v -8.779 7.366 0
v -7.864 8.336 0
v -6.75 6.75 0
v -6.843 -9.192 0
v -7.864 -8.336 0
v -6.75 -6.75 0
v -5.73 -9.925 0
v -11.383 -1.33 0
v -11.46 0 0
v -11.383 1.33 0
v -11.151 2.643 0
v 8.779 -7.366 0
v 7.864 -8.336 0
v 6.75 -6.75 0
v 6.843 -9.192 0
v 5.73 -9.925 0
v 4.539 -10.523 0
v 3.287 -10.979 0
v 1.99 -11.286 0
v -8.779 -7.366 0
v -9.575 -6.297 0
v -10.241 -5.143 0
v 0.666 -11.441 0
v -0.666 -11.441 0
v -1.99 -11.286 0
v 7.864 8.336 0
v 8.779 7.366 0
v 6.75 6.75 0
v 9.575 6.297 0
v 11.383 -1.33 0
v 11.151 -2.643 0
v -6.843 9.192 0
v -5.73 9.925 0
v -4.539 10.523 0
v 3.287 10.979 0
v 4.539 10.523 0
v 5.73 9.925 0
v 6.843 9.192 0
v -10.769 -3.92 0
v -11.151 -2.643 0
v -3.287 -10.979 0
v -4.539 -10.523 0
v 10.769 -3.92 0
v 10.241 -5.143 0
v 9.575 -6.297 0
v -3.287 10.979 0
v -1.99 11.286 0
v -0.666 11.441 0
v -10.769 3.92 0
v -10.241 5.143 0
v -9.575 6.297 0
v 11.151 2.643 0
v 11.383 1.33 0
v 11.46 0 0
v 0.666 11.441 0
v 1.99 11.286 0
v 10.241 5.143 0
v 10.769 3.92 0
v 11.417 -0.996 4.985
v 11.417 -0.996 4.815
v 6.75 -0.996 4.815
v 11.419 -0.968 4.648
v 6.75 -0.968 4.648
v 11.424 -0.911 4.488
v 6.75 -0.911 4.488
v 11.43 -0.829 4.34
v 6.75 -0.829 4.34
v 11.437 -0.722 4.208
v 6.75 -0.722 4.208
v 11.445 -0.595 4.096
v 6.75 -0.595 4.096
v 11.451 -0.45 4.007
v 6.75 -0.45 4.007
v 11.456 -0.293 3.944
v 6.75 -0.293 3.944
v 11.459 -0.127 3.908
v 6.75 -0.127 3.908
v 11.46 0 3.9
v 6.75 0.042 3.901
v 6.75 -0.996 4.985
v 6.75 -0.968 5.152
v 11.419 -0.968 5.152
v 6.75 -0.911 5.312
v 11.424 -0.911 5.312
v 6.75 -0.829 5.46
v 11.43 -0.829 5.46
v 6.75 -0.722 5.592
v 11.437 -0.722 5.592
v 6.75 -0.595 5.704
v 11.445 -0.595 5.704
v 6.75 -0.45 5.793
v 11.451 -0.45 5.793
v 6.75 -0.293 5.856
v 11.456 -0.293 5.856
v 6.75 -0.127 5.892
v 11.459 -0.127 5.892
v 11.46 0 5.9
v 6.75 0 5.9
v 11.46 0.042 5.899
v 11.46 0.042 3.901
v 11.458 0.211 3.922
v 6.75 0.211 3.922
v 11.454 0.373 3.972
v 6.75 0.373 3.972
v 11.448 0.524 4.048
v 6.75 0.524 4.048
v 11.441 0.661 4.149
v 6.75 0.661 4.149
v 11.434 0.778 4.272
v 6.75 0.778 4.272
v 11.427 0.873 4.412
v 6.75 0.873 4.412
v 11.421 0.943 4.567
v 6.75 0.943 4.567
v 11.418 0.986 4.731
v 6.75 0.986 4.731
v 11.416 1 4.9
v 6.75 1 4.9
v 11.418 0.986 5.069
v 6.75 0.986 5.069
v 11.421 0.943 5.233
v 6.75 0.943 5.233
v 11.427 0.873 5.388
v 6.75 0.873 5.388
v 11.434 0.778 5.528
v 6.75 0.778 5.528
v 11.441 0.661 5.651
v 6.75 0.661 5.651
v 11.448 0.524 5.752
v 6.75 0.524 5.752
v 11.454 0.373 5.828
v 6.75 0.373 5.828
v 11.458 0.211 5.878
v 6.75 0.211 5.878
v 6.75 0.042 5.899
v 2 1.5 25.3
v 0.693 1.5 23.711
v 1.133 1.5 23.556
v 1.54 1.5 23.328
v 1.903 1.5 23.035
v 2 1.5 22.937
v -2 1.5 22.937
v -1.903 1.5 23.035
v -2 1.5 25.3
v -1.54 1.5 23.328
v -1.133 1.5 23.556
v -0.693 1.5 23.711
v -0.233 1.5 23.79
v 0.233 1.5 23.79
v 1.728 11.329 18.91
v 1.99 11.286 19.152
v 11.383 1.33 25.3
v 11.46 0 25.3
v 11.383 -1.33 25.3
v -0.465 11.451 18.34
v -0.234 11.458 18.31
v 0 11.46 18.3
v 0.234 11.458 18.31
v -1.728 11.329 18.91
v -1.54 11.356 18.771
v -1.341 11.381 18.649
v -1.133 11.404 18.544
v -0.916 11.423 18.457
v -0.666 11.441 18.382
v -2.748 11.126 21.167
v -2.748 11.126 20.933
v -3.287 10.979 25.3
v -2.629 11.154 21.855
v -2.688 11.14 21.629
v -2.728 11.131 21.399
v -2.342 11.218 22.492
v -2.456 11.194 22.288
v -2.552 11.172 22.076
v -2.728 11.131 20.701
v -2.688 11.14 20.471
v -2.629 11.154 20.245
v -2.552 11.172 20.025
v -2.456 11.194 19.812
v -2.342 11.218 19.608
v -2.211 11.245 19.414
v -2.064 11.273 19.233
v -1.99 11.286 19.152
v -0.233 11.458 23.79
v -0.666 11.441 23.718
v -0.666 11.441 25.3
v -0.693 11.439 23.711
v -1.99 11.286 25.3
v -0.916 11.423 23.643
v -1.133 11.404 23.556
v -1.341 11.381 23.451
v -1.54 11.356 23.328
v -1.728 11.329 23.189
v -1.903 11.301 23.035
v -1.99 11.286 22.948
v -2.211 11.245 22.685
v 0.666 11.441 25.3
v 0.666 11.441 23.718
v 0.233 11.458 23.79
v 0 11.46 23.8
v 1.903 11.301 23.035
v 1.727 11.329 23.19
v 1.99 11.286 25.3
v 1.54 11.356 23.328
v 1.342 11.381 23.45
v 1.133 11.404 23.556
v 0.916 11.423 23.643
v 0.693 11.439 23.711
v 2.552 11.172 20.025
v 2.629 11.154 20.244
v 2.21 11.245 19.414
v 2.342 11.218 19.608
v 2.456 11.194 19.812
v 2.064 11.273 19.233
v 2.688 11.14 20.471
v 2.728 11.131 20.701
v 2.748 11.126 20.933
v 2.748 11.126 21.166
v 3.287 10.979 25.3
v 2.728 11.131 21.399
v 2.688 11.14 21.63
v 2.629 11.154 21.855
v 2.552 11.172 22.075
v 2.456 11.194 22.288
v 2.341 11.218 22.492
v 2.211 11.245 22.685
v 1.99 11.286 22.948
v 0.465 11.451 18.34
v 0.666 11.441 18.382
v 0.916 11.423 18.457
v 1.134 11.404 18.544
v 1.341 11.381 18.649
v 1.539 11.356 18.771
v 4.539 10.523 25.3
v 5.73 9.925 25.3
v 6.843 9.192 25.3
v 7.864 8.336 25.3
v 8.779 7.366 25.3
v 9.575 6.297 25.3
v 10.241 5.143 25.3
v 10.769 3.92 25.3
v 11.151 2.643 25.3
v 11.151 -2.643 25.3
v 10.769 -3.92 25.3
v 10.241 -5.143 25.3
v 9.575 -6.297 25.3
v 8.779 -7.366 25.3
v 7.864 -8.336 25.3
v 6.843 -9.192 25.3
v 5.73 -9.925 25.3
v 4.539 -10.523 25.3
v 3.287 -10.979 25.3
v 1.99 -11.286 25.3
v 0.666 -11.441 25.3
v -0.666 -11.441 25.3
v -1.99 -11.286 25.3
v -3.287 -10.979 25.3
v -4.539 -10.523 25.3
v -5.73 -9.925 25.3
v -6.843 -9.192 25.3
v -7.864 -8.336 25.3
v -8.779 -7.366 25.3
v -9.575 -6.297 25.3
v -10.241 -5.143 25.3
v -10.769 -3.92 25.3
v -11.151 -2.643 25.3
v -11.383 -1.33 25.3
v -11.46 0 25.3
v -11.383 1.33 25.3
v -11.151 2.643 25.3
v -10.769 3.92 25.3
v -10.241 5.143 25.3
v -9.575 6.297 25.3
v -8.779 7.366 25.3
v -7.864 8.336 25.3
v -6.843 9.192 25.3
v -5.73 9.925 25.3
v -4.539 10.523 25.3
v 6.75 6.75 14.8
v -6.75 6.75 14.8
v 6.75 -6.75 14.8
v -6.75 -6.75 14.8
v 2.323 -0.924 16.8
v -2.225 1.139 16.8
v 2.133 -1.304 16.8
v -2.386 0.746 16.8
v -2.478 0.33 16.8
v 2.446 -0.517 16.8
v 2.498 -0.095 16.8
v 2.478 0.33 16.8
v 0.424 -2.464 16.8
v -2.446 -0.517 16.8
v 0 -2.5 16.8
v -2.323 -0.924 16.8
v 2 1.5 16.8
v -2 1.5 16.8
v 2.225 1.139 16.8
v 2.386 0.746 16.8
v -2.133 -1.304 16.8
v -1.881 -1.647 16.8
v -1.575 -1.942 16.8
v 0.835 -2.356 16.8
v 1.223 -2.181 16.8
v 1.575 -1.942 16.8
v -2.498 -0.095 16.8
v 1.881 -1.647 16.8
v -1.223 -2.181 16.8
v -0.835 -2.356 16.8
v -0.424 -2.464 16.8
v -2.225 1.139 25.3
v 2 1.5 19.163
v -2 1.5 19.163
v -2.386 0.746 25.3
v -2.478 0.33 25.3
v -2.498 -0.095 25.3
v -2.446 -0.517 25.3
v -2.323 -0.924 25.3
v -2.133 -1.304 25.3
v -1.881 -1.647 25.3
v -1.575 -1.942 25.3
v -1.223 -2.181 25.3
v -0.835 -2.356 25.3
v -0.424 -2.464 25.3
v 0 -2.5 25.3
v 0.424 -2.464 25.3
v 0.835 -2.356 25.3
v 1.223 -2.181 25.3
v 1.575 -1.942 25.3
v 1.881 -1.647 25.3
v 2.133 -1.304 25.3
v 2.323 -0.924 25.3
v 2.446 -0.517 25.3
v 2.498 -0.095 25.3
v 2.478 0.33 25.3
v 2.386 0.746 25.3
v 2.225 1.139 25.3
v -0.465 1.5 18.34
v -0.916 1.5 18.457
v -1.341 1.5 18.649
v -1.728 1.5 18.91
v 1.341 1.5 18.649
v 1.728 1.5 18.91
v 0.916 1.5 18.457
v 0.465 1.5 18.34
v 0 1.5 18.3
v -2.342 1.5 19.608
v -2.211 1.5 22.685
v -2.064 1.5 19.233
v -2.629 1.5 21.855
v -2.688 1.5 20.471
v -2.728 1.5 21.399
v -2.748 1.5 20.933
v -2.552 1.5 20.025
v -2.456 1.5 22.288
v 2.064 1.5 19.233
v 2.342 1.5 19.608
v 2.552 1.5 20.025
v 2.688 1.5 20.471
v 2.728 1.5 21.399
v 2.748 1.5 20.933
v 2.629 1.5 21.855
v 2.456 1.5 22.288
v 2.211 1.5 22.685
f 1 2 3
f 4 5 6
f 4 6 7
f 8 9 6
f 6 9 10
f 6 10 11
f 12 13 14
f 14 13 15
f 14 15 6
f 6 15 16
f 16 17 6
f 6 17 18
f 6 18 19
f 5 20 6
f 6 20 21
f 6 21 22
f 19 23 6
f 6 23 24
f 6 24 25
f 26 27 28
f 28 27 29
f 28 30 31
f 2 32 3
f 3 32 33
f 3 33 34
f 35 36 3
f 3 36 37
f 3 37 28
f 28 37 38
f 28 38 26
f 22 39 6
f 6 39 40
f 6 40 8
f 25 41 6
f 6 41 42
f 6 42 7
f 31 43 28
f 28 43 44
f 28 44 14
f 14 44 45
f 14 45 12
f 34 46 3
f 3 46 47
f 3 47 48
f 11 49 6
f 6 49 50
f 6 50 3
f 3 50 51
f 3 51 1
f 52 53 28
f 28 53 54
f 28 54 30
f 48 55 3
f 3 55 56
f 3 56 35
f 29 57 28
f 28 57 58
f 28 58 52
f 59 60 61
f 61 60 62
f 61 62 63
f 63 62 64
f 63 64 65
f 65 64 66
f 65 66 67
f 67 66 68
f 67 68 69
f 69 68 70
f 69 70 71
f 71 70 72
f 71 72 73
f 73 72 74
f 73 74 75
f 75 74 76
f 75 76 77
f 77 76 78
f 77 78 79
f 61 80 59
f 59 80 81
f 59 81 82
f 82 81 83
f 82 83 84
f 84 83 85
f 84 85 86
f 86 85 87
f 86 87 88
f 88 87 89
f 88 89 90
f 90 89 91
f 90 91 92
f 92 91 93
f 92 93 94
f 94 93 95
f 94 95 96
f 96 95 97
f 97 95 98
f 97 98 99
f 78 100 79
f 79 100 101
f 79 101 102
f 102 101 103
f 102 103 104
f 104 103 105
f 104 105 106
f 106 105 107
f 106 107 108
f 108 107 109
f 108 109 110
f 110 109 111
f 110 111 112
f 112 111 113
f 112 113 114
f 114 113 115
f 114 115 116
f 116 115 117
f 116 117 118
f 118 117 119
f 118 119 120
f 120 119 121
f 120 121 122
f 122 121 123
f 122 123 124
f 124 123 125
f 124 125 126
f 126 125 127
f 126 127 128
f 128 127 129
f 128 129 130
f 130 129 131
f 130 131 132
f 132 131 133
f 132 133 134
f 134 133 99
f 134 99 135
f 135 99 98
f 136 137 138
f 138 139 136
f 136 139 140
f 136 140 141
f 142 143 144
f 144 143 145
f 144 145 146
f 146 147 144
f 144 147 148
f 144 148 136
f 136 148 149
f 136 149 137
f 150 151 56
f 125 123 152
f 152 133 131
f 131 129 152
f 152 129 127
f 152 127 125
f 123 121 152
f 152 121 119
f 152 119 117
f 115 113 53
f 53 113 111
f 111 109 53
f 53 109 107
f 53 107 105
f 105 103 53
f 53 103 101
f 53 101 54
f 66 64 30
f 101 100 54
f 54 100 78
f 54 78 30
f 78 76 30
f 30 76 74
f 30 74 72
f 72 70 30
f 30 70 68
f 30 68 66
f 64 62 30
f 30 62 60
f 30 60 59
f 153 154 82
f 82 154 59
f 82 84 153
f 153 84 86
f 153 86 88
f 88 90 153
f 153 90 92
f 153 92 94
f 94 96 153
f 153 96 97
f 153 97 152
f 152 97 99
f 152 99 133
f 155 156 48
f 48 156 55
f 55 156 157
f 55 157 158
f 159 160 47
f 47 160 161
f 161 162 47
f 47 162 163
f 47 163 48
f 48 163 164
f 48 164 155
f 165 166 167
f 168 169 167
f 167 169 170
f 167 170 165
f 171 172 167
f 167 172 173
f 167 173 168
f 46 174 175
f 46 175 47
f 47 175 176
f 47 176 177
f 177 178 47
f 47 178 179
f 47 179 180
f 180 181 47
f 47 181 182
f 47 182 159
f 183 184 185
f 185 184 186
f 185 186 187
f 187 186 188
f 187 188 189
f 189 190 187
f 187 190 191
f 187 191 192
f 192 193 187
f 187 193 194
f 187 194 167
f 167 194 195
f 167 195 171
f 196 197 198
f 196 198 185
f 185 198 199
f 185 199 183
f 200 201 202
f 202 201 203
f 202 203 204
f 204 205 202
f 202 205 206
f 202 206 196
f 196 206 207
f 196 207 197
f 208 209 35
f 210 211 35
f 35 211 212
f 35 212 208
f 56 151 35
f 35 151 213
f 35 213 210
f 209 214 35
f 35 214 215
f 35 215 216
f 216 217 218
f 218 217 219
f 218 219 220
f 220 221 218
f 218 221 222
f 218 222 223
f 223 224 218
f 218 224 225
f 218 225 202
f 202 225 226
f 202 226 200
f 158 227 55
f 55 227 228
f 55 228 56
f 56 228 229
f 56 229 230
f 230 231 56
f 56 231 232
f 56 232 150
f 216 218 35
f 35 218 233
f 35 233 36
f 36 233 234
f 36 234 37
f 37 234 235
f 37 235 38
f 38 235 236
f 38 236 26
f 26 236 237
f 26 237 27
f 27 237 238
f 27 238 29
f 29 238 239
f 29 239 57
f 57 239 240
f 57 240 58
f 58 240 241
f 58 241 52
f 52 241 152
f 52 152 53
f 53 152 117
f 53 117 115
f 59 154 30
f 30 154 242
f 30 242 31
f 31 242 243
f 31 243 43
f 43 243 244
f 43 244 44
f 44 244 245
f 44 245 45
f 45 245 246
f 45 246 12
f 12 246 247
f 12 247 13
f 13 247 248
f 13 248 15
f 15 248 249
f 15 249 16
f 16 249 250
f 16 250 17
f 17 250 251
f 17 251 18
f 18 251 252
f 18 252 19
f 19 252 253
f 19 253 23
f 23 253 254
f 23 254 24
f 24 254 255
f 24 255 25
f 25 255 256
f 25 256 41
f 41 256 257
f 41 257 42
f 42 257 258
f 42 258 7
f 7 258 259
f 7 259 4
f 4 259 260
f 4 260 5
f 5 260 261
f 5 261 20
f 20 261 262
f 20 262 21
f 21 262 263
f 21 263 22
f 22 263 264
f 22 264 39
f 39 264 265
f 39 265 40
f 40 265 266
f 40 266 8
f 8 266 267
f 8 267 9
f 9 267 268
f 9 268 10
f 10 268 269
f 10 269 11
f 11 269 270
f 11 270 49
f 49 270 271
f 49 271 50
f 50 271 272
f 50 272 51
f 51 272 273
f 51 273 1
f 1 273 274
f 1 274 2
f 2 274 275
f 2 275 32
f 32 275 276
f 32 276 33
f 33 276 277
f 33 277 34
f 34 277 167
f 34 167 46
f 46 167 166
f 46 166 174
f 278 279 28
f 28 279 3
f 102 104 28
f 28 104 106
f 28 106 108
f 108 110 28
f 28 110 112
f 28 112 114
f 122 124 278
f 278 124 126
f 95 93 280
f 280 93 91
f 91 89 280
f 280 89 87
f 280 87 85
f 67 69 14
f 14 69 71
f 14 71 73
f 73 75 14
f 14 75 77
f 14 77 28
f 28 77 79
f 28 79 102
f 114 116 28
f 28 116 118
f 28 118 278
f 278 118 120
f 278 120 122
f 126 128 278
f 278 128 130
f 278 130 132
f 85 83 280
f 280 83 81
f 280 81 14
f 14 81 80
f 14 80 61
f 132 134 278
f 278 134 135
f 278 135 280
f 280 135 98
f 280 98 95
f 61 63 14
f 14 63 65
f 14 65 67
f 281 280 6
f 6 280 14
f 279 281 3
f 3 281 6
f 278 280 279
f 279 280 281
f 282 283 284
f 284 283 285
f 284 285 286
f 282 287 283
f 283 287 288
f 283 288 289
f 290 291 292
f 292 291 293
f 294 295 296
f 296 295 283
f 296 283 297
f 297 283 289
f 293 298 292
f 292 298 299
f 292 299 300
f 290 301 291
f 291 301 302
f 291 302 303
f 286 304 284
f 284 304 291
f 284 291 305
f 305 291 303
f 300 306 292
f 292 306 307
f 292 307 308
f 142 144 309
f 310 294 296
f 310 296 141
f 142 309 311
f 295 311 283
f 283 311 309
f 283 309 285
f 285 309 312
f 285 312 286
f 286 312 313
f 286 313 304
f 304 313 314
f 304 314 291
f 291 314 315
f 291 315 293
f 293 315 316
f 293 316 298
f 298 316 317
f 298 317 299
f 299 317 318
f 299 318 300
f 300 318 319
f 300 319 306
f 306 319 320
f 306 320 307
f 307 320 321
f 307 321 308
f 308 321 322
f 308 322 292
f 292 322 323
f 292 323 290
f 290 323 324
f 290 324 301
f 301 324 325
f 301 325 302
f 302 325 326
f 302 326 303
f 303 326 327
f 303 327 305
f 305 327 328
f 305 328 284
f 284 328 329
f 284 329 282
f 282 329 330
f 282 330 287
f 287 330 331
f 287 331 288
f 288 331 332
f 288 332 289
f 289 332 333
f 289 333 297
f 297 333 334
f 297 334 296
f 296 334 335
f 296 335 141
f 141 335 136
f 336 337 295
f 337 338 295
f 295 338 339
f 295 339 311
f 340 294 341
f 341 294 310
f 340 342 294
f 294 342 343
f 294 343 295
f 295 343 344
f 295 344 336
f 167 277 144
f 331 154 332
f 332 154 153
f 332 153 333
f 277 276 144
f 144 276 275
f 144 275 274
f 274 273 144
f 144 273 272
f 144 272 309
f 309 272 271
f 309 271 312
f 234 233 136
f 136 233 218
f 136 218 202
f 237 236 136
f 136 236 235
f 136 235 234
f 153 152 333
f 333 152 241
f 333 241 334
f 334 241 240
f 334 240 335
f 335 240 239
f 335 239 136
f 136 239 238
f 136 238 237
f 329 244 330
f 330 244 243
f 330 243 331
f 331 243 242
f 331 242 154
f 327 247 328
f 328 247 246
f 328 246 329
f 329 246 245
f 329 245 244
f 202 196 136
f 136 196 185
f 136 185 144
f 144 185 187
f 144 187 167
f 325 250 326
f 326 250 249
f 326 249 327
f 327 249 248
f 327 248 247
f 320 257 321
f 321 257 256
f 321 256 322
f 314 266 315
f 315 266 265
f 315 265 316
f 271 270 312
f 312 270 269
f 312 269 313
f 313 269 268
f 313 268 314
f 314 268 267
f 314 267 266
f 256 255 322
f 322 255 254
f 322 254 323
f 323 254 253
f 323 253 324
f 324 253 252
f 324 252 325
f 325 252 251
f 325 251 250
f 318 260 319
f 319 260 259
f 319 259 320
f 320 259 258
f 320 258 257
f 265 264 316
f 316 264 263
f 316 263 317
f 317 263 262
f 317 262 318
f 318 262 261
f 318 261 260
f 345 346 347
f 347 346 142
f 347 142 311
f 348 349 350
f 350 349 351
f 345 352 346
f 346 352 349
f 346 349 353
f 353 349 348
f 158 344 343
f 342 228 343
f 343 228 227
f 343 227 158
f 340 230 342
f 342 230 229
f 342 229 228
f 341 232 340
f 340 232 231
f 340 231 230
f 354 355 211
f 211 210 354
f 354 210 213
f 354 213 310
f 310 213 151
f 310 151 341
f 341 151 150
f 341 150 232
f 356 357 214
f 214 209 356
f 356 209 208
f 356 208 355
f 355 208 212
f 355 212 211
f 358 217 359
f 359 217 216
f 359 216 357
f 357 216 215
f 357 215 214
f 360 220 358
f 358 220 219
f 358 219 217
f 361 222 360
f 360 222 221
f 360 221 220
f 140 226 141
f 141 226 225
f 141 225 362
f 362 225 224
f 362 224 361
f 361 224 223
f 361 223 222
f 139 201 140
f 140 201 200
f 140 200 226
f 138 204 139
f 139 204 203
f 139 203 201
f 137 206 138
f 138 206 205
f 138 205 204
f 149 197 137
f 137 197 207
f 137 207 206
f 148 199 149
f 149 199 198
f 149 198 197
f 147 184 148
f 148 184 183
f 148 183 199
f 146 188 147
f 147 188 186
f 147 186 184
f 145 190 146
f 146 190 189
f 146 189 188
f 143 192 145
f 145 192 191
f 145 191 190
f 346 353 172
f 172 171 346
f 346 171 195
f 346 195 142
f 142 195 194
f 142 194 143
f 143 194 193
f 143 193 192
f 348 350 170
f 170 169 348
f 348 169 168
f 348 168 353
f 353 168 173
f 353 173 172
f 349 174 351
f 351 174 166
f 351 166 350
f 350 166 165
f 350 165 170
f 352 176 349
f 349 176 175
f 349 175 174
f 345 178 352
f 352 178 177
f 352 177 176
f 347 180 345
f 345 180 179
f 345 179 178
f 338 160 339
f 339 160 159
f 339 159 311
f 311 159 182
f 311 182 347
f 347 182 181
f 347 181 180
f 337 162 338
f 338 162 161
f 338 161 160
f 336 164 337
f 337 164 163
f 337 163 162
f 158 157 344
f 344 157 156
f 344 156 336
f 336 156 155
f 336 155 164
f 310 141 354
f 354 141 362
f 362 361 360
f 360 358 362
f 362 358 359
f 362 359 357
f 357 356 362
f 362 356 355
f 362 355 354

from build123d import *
from build123d.topology import SkipClean

# Parameters (mm, degrees)
BOSS_EXTRUDE1_DEPTH = 9.8
SKETCH2_R           = 9.925
BOSS_EXTRUDE2_DEPTH = 7
SKETCH3_W           = 13.5
SKETCH3_H           = 13.5
CUT_EXTRUDE1_DEPTH  = 5
SKETCH4_R           = 5
BOSS_EXTRUDE3_DEPTH = 8.5
SKETCH5_R           = 1
CUT_EXTRUDE2_DEPTH  = 10.5
SKETCH7_W           = 3.5
SKETCH7_H           = 8.12
CUT_EXTRUDE4_DEPTH  = 10.5
SKETCH9_R           = 9.925
SKETCH9_R_2         = 5
BOSS_EXTRUDE4_DEPTH = 8.5
SKETCH14_R          = 11.46
SKETCH14_R_2        = 9.925
BOSS_EXTRUDE5_DEPTH = 15.5
SKETCH6_R           = 2.75
CUT_EXTRUDE3_DEPTH  = 13.5
CUT_EXTRUDE5_DEPTH  = 21


with BuildPart() as part:
    # Sketch1 → Boss-Extrude1 (new body)
    # profile 1 of 5: a face of its own
    with BuildSketch(Plane.XY):
        with BuildLine():
            Line((17.06, 4.06), (10.716715915, 4.06))
            ThreePointArc((10.716715915, 4.06), (-11.46, 0), (10.716715915, -4.06))
            Line((10.716715915, -4.06), (17.06, -4.06))
            Line((17.06, -4.06), (17.06, 4.06))
        make_face()
        with BuildLine():
            Line((-5.14952425, -6.75), (-6.75, -6.75))
            Line((-6.75, -6.75), (-6.75, -5.14952425))
            ThreePointArc((-6.75, -5.14952425), (-8.49, 0), (-6.75, 5.14952425))
            Line((-6.75, 5.14952425), (-6.75, 6.75))
            Line((-6.75, 6.75), (-5.14952425, 6.75))
            ThreePointArc((-5.14952425, 6.75), (0, 8.49), (5.14952425, 6.75))
            Line((5.14952425, 6.75), (6.75, 6.75))
            Line((6.75, 6.75), (6.75, 5.14952425))
            ThreePointArc((6.75, 5.14952425), (8.49, 0), (6.75, -5.14952425))
            Line((6.75, -5.14952425), (6.75, -6.75))
            Line((6.75, -6.75), (5.14952425, -6.75))
            ThreePointArc((5.14952425, -6.75), (0, -8.49), (-5.14952425, -6.75))
        make_face(mode=Mode.SUBTRACT)
    # profile 2 of 5: a face of its own
    with BuildSketch(Plane.XY):
        with BuildLine():
            ThreePointArc((5.14952425, 6.75), (0, 8.49), (-5.14952425, 6.75))
            Line((-5.14952425, 6.75), (5.14952425, 6.75))
        make_face()
    # profile 3 of 5: a face of its own
    with BuildSketch(Plane.XY):
        with BuildLine():
            ThreePointArc((-6.75, 5.14952425), (-8.49, 0), (-6.75, -5.14952425))
            Line((-6.75, -5.14952425), (-6.75, 5.14952425))
        make_face()
    # profile 4 of 5: a face of its own
    with BuildSketch(Plane.XY):
        with BuildLine():
            Line((6.75, 5.14952425), (6.75, -5.14952425))
            ThreePointArc((6.75, -5.14952425), (8.49, 0), (6.75, 5.14952425))
        make_face()
    # profile 5 of 5: a face of its own
    with BuildSketch(Plane.XY):
        with BuildLine():
            Line((5.14952425, -6.75), (-5.14952425, -6.75))
            ThreePointArc((-5.14952425, -6.75), (0, -8.49), (5.14952425, -6.75))
        make_face()
    extrude(amount=BOSS_EXTRUDE1_DEPTH)

    # Sketch2 → Boss-Extrude2 (add)
    with BuildSketch(Plane.XY.offset(9.8)):
        Circle(SKETCH2_R)
    extrude(amount=BOSS_EXTRUDE2_DEPTH)

    # Sketch3 → Cut-Extrude1 (cut)
    with BuildSketch(Plane(origin=(0, 0, 9.8), x_dir=(-1, 0, 0), z_dir=(0, 0, -1))):
        Rectangle(SKETCH3_W, SKETCH3_H)
    extrude(amount=-CUT_EXTRUDE1_DEPTH, mode=Mode.SUBTRACT)

    # Sketch4 → Boss-Extrude3 (add)
    with BuildSketch(Plane.XY.offset(16.8)):
        Circle(SKETCH4_R)
        with BuildLine():
            Line((2, 1.5), (-2, 1.5))
            ThreePointArc((-2, 1.5), (0, -2.5), (2, 1.5))
        make_face(mode=Mode.SUBTRACT)
    extrude(amount=BOSS_EXTRUDE3_DEPTH)

    # Sketch5 → Cut-Extrude2 (cut)
    with BuildSketch(Plane(origin=(17.06, 0, 0), x_dir=(0, 0, -1), z_dir=(1, 0, 0))):
        with Locations(Location((-4.9, 0, 0), (0, 0, 90))):
            Circle(SKETCH5_R)
    extrude(amount=-CUT_EXTRUDE2_DEPTH, mode=Mode.SUBTRACT)

    # Sketch7 → Cut-Extrude4 (cut)
    with BuildSketch(Plane(origin=(0, 0, 0), x_dir=(-1, 0, 0), z_dir=(0, 0, -1))):
        with Locations((-15.31, 0)):
            Rectangle(SKETCH7_W, SKETCH7_H)
    extrude(amount=-CUT_EXTRUDE4_DEPTH, mode=Mode.SUBTRACT)

    # Sketch9 → Boss-Extrude4 (add)
    with BuildSketch(Plane.XY.offset(16.8)):
        Circle(SKETCH9_R)
        Circle(SKETCH9_R_2, mode=Mode.SUBTRACT)
    extrude(amount=BOSS_EXTRUDE4_DEPTH)

    # Sketch14 → Boss-Extrude5 (add)
    with BuildSketch(Plane.XY.offset(9.8)):
        with Locations(Location((0, 0, 0), (0, 0, 339.250937201))):
            Circle(SKETCH14_R)
        Circle(SKETCH14_R_2, mode=Mode.SUBTRACT)
    extrude(amount=BOSS_EXTRUDE5_DEPTH)

    # Sketch6 → Cut-Extrude3 (cut)
    with BuildSketch(Plane.XZ.offset(-1.5)):
        with Locations(Location((0, 21.05, 0), (0, 0, 270))):
            Circle(SKETCH6_R)
    extrude(amount=-CUT_EXTRUDE3_DEPTH, mode=Mode.SUBTRACT)

    # Sketch15 → Cut-Extrude5 (cut)
    with SkipClean():  # the faces are left unmerged after this step: merging them gives an invalid solid
        with BuildSketch(Plane(origin=(0, 0, 0), x_dir=(-1, 0, 0), z_dir=(0, 0, -1))):
            with BuildLine():
                ThreePointArc((-10.716715915, -4.06), (-11.46, 0), (-10.716715915, 4.06))
                Line((-10.716715915, 4.06), (-13.56, 4.06))
                Line((-13.56, 4.06), (-13.56, -4.06))
                Line((-13.56, -4.06), (-10.716715915, -4.06))
            make_face()
        extrude(amount=-CUT_EXTRUDE5_DEPTH, mode=Mode.SUBTRACT)


solid = part.part
